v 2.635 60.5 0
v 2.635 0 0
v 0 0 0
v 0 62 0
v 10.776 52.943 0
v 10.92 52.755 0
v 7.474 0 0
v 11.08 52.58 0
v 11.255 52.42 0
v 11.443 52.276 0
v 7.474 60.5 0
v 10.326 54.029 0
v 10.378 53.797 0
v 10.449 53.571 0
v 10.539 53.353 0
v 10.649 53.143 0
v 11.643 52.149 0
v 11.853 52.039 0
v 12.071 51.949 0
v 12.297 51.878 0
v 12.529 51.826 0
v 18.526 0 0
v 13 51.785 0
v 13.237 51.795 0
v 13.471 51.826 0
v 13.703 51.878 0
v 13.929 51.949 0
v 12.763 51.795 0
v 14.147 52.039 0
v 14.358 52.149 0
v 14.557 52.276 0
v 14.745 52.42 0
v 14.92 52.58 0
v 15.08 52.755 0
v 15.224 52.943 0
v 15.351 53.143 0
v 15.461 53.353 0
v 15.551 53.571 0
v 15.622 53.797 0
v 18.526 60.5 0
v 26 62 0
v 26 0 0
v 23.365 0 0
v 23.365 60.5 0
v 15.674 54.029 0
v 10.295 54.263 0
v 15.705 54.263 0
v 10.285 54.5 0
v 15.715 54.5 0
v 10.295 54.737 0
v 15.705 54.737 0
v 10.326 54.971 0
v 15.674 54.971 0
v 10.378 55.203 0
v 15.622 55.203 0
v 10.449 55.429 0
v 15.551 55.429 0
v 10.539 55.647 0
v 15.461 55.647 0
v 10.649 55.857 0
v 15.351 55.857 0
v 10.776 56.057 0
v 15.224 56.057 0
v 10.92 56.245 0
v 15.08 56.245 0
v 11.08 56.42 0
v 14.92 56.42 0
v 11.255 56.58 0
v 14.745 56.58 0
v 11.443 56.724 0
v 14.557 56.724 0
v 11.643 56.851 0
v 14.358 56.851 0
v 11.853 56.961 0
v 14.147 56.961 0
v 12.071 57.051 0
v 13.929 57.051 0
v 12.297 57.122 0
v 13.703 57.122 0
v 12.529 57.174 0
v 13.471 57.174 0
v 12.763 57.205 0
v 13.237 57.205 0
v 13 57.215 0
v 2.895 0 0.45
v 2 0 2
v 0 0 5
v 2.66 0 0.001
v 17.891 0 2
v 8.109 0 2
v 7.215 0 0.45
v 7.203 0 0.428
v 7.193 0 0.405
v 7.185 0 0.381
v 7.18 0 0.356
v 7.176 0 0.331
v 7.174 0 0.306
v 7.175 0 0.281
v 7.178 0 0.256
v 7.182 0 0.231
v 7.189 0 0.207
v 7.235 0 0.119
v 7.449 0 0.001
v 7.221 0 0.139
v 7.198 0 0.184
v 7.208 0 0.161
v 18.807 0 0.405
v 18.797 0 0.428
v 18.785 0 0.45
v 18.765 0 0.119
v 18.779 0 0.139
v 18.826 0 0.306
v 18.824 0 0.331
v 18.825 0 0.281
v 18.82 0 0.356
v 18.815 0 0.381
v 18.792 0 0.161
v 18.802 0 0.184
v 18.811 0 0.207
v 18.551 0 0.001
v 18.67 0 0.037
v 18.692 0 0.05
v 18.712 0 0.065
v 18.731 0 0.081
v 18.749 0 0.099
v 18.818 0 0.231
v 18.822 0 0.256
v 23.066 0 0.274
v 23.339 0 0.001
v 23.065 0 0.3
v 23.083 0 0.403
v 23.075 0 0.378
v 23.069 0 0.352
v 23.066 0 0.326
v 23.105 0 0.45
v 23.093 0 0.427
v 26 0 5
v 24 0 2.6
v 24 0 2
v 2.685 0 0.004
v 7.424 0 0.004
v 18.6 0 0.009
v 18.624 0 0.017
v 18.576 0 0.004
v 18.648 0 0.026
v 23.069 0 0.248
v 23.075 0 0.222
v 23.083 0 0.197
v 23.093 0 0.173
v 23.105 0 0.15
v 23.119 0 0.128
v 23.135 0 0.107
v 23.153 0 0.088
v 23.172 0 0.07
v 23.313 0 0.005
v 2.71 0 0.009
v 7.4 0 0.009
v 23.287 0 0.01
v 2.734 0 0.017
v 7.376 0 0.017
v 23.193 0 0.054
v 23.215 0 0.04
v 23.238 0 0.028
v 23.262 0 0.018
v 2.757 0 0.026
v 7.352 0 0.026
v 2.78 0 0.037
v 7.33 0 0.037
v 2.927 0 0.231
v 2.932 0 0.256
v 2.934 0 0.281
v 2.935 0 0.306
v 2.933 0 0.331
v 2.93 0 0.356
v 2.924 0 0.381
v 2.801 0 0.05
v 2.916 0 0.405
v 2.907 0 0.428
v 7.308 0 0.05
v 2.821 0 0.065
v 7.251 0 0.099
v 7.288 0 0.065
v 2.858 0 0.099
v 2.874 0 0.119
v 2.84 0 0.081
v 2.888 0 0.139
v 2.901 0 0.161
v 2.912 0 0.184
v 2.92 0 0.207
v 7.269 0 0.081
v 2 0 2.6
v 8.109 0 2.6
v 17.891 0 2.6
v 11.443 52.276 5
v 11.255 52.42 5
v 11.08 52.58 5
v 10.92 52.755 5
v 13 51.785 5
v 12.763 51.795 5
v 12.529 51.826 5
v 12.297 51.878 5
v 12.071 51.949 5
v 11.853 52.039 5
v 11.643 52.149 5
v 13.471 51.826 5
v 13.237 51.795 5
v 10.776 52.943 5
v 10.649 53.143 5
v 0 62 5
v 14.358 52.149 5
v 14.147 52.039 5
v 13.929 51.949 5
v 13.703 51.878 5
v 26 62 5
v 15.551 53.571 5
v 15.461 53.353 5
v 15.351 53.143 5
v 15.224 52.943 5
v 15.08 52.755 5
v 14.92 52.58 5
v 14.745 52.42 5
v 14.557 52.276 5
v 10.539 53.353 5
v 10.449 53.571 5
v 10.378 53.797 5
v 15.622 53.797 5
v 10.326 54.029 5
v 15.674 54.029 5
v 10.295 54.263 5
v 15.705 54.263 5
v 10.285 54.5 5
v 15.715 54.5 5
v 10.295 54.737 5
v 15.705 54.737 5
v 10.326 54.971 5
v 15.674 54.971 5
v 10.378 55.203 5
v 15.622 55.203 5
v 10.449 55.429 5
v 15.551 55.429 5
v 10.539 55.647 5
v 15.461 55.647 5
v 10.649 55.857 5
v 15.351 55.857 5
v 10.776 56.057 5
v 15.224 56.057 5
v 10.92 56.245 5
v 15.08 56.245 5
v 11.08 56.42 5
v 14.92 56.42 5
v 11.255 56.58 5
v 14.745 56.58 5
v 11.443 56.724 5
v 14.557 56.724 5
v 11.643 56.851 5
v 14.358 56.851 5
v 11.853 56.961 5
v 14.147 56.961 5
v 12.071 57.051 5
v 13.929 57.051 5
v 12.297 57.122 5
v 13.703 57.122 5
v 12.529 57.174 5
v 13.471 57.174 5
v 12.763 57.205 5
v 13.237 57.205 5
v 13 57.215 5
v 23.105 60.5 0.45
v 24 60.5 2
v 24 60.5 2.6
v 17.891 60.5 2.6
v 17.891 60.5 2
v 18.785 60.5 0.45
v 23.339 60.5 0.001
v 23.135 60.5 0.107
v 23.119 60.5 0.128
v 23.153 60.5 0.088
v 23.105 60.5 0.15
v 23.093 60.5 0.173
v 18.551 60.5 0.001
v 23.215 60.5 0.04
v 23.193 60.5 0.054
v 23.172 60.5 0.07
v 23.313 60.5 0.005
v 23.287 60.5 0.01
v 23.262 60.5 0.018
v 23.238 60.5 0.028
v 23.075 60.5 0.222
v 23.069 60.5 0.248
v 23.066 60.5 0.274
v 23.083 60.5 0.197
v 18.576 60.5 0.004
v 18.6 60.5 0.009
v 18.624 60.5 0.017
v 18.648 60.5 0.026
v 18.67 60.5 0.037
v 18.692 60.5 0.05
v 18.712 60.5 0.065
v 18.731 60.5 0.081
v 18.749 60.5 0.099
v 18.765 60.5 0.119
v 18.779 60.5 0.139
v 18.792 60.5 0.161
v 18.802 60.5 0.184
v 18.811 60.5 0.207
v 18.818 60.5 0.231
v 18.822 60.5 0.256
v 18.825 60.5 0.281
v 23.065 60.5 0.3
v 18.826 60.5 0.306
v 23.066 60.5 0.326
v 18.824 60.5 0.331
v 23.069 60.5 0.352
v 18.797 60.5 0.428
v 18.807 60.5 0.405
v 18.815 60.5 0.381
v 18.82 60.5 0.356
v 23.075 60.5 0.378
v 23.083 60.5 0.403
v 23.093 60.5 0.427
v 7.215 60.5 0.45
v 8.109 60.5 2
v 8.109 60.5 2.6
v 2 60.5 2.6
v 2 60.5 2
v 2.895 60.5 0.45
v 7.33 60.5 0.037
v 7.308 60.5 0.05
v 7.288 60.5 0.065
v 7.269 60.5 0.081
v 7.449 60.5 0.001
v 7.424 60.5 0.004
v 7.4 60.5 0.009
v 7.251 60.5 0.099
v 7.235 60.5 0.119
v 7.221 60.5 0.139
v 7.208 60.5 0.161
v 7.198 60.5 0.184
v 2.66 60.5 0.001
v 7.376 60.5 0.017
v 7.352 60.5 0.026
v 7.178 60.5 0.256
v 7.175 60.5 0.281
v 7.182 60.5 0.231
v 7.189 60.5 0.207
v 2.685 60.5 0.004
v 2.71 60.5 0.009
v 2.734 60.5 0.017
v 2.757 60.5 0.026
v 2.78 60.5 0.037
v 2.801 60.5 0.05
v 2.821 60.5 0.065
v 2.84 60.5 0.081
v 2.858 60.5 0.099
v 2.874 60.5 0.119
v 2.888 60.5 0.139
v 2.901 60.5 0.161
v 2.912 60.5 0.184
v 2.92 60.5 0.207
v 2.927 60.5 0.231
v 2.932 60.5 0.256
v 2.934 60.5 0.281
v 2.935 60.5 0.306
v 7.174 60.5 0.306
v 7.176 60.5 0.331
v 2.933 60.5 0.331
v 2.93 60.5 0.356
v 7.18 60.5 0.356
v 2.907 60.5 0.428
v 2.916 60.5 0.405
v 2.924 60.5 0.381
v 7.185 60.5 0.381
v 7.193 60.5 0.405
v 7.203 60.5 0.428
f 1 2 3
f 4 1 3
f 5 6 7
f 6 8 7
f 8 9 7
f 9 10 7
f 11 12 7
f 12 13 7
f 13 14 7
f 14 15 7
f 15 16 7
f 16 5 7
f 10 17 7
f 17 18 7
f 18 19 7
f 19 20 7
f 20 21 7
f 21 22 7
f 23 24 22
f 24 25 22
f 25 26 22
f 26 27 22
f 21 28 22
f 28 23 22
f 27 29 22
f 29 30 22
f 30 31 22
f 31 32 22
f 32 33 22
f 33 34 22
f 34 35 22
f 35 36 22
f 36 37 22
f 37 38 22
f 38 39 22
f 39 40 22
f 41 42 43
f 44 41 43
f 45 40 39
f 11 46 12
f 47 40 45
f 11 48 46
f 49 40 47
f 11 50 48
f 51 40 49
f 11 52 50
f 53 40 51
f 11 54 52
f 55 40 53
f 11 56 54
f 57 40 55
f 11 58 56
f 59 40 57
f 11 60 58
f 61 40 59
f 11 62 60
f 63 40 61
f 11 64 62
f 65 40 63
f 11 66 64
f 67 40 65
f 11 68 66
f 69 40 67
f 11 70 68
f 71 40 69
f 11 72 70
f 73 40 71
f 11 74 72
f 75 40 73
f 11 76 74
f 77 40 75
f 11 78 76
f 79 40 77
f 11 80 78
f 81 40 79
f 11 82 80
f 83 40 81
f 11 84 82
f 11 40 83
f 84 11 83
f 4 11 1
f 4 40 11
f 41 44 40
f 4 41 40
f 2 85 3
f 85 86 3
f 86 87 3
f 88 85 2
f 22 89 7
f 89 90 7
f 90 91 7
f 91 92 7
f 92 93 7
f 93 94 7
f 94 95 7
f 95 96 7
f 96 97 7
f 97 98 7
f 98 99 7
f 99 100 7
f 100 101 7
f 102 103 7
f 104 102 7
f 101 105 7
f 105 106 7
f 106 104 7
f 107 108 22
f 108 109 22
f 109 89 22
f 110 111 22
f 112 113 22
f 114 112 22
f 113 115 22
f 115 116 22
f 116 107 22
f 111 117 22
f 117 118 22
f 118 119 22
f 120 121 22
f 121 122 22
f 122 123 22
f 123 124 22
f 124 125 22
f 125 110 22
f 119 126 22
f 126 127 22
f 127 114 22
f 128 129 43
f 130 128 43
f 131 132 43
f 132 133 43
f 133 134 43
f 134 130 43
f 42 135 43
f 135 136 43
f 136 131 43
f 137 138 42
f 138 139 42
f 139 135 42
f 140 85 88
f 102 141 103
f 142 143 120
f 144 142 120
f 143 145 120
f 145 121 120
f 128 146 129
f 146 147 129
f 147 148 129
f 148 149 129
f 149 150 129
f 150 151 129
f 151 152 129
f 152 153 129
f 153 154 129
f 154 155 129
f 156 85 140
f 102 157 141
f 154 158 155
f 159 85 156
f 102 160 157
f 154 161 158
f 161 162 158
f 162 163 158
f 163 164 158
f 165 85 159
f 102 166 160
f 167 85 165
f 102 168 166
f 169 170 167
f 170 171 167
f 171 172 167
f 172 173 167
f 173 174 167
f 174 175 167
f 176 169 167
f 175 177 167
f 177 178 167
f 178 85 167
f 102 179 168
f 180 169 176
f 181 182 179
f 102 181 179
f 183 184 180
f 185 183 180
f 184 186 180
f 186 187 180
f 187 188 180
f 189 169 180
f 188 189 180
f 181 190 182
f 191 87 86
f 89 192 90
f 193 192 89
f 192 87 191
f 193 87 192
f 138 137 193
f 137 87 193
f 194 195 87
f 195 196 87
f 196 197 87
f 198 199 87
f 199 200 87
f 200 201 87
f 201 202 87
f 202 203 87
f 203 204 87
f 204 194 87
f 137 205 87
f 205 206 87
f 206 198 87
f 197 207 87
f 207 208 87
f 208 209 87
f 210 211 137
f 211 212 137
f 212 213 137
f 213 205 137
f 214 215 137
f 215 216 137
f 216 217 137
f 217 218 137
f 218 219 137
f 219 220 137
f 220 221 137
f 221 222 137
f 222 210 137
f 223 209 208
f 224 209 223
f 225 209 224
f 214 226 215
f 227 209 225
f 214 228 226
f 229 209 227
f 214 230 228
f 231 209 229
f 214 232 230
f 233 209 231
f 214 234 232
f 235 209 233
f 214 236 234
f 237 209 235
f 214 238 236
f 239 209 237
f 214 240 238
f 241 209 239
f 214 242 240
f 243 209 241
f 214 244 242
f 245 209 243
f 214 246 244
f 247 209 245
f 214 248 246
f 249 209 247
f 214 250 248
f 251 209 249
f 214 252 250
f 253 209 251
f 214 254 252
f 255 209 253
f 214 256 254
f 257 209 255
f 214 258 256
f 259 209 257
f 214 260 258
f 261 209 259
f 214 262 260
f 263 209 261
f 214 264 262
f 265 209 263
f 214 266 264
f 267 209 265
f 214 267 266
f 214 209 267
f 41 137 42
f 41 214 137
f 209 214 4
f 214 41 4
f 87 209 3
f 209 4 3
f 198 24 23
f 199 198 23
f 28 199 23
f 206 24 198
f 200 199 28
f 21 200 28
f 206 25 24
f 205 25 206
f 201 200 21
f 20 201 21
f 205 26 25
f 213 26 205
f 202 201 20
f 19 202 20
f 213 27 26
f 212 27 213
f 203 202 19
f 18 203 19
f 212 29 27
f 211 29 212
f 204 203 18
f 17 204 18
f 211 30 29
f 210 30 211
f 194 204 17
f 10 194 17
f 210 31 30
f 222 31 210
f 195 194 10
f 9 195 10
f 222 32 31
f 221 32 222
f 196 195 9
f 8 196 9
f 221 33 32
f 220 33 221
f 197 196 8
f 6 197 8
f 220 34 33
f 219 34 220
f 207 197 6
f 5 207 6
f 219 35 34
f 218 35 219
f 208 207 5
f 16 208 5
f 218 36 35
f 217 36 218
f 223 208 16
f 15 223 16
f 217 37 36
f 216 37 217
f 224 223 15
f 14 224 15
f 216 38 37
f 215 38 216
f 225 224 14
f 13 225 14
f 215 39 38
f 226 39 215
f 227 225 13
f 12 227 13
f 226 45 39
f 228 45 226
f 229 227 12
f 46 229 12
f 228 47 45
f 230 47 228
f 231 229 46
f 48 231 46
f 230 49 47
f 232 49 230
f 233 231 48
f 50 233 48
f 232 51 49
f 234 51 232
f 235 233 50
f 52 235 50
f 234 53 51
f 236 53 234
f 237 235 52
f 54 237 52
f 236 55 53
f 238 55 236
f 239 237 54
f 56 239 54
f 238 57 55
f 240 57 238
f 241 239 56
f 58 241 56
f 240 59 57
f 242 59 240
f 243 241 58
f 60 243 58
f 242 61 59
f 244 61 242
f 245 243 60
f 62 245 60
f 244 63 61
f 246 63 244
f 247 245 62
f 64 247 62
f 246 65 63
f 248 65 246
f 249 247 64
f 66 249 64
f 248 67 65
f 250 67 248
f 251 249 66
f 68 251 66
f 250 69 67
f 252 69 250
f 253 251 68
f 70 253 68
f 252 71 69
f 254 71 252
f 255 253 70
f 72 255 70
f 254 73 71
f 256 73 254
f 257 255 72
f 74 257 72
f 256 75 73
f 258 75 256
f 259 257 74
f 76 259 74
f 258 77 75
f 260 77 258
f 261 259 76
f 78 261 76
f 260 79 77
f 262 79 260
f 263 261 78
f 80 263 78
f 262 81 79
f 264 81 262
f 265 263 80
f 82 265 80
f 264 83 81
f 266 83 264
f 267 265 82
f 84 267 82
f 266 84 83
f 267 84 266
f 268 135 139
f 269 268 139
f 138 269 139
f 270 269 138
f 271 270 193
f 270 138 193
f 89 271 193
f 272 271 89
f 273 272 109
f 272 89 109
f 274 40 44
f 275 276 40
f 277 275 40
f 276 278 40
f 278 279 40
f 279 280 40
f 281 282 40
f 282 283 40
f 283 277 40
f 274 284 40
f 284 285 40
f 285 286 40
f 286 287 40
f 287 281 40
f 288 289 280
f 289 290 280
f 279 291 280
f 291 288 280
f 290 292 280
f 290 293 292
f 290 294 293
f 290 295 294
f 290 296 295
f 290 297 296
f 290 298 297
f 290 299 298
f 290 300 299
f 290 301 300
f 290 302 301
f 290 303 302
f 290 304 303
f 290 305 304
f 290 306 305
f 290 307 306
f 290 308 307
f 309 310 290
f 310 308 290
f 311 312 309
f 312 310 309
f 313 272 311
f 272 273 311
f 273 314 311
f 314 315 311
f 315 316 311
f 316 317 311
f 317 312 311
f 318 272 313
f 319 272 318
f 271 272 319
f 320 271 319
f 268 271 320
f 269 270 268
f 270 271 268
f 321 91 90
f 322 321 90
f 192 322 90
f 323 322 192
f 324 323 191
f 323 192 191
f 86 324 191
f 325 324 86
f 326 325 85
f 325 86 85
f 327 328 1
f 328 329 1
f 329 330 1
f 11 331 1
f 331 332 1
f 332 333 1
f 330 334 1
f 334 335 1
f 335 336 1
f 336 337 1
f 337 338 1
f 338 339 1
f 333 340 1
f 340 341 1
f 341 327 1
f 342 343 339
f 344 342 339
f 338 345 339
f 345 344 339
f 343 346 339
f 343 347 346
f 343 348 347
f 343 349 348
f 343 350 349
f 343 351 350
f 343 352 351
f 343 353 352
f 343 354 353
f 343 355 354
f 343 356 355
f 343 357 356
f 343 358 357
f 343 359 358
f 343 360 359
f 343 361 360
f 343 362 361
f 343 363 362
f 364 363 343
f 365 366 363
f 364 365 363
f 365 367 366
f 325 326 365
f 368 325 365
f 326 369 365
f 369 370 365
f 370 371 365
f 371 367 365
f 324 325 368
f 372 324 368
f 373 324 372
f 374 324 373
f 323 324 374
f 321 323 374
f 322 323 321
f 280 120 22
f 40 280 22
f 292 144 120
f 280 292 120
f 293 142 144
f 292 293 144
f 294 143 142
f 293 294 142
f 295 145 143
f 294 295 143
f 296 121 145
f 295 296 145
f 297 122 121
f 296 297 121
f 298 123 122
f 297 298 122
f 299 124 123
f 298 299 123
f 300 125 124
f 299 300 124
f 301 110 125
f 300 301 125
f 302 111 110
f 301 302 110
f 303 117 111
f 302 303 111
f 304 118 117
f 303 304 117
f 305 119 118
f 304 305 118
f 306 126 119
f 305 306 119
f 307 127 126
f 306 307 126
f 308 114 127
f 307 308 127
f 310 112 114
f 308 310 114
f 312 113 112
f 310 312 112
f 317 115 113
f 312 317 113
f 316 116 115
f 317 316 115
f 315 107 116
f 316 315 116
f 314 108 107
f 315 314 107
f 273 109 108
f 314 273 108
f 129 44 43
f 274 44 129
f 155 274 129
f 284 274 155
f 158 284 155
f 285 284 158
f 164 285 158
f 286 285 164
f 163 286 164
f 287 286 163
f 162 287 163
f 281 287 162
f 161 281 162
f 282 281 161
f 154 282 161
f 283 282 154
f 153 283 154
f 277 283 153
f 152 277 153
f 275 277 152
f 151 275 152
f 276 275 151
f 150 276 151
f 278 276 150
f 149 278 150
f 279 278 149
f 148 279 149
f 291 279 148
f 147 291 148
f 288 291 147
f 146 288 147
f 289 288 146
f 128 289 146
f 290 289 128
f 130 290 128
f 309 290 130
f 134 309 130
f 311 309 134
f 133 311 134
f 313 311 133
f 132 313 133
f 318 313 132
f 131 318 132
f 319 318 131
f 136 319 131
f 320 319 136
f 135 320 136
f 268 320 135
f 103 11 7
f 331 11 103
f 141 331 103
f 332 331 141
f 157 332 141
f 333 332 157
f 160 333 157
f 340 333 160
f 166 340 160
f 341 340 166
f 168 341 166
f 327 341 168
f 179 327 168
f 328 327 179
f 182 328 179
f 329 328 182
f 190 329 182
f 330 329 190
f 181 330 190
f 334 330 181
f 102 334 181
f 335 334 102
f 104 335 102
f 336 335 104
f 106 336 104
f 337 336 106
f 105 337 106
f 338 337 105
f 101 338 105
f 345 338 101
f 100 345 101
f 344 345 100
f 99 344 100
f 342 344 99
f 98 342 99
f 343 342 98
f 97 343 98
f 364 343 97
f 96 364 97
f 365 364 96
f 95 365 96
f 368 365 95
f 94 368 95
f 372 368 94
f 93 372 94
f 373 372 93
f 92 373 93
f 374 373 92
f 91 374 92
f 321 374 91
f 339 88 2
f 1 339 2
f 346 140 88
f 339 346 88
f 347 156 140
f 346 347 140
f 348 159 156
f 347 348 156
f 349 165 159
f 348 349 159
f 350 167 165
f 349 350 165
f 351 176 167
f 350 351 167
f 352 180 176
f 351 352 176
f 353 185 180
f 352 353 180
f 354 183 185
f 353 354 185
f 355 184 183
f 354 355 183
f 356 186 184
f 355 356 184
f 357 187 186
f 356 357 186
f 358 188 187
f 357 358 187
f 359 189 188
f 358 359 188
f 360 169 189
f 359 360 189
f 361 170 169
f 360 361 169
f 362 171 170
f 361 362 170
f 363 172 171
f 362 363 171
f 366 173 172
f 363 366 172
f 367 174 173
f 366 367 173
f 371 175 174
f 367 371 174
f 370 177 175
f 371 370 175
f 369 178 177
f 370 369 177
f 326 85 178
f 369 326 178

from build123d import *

# Parameters (mm, degrees)
ESQUISSE1_W                  = 26
ESQUISSE1_H                  = 62
ESQUISSE1_R                  = 2.715
BOSS_EXTRU_1_DEPTH           = 5
ENL_V_MAT_EXTRU_1_DEPTH      = 68.416615163
ENL_V_MAT_EXTRU_1_DEPTH_BACK = 60.5
CONG_3_R                     = 0.3


with BuildPart() as part:
    # Esquisse1 → Boss.-Extru.1 (new body)
    with BuildSketch(Plane.XY):
        with Locations((13, 31)):
            Rectangle(ESQUISSE1_W, ESQUISSE1_H)
        with Locations((13, 54.5)):
            Circle(ESQUISSE1_R, mode=Mode.SUBTRACT)
    extrude(amount=BOSS_EXTRU_1_DEPTH)

    # Esquisse3 → Enlèv. mat.-Extru.1 (cut, two sides: drawn at the far end of the back side and taken through both)
    with BuildSketch(Plane.XZ.offset(-ENL_V_MAT_EXTRU_1_DEPTH_BACK)):
        Polygon((3.154700538, 0), (2, 2), (2, 2.6), (8.109401077, 2.6), (8.109401077, 2), (6.954700538, 0), align=None)
        Polygon((19.045299462, 0), (17.890598923, 2), (17.890598923, 2.6), (24, 2.6), (24, 2), (22.845299462, 0), align=None)
    extrude(amount=ENL_V_MAT_EXTRU_1_DEPTH + ENL_V_MAT_EXTRU_1_DEPTH_BACK, mode=Mode.SUBTRACT)

    # Congé3
    cong_3_edges = [part.edges().sort_by_distance(p)[0] for p in [
        (3.154700538, 30.25, 0),
        (6.954700538, 30.25, 0),
        (19.045299462, 30.25, 0),
        (22.845299462, 30.25, 0),
    ]]
    fillet(cong_3_edges, radius=CONG_3_R)


solid = part.part
